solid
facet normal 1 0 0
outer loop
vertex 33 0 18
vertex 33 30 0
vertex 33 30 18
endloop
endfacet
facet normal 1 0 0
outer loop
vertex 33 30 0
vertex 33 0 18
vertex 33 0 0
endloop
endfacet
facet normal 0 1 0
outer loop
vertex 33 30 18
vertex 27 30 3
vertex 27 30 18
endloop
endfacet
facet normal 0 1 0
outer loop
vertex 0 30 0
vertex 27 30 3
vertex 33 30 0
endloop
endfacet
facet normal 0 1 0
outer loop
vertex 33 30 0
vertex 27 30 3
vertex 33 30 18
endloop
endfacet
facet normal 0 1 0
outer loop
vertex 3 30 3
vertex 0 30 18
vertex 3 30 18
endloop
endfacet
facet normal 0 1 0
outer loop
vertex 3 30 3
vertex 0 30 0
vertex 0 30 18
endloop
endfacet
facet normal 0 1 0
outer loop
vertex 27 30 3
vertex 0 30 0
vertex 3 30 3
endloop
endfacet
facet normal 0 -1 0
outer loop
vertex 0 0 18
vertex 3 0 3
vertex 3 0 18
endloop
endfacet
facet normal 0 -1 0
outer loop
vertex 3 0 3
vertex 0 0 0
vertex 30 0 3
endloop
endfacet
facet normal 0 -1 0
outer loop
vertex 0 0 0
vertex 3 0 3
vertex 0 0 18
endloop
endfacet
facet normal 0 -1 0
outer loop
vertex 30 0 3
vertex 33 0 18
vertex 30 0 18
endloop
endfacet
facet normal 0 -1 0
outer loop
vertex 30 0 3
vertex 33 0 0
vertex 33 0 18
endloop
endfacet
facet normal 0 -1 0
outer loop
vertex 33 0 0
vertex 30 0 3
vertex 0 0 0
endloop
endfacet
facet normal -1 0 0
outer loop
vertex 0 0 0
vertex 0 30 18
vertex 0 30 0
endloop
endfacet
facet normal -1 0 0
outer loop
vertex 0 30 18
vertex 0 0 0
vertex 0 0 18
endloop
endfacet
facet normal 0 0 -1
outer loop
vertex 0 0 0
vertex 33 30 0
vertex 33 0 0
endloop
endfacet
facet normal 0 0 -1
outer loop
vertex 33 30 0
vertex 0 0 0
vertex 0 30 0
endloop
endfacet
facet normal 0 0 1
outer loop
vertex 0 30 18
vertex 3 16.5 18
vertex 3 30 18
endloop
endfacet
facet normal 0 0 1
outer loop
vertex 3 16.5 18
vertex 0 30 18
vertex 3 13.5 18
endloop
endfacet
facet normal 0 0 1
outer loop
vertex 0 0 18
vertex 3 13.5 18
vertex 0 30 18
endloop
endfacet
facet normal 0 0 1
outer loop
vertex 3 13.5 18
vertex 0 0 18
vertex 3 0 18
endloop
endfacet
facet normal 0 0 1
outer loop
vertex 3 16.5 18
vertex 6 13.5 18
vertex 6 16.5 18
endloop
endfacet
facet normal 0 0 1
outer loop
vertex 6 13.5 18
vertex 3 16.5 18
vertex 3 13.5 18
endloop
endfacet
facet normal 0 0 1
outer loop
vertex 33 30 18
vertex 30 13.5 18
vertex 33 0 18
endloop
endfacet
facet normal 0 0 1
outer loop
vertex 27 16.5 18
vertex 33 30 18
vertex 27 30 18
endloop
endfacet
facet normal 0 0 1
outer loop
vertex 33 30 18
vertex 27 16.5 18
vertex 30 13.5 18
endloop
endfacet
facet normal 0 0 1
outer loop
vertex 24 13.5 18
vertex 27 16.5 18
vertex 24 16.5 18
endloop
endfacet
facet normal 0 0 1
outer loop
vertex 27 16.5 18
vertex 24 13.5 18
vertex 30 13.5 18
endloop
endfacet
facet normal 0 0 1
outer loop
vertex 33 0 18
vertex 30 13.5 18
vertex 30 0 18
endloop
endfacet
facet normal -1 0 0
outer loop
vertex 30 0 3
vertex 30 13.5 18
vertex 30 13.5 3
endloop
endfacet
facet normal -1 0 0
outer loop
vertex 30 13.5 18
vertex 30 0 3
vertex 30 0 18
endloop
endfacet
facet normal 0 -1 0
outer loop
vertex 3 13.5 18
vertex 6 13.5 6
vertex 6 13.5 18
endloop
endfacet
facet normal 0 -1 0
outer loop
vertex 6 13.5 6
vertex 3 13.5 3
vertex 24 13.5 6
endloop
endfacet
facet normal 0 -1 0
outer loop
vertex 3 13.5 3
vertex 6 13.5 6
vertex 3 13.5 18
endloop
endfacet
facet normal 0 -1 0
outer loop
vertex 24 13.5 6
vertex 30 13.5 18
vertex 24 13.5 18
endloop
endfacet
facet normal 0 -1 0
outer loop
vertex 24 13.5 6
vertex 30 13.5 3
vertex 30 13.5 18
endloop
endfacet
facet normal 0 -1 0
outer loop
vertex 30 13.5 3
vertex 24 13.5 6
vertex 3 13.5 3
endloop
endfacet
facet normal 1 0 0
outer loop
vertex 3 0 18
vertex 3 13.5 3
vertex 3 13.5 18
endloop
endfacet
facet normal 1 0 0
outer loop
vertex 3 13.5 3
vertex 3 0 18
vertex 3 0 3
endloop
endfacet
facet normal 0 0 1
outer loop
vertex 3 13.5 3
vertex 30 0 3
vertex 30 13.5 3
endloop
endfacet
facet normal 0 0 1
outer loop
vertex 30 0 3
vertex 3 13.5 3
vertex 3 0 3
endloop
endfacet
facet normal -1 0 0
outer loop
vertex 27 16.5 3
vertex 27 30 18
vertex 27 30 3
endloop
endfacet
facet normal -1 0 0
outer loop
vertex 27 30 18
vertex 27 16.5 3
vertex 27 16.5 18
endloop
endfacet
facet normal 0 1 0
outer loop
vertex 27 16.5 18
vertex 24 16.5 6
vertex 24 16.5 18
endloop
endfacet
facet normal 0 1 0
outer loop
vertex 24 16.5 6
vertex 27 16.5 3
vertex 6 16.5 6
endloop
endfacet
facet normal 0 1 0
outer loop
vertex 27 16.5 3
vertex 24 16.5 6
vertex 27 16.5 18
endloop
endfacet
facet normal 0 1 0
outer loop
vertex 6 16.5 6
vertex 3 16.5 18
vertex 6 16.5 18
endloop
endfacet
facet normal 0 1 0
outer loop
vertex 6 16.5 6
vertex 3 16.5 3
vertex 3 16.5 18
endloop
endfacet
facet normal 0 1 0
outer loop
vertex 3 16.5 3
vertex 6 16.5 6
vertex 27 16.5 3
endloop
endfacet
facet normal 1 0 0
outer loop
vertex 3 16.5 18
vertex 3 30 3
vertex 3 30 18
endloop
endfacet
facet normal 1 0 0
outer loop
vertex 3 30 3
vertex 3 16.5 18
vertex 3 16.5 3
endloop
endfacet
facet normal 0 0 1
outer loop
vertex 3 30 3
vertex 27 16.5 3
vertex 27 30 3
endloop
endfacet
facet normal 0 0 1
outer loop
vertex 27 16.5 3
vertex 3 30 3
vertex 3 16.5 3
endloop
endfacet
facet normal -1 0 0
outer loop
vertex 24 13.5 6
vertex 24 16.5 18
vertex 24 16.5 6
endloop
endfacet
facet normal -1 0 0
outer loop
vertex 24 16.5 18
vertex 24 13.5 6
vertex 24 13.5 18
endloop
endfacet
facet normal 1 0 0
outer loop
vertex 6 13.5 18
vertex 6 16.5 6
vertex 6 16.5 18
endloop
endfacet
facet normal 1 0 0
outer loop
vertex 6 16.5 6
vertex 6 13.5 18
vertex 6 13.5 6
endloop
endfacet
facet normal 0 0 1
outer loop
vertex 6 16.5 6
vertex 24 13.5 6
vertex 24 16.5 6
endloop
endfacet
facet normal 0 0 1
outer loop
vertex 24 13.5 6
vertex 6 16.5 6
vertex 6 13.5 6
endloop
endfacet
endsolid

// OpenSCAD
// Holder for FrSky S8R and S6R receivers.
// Use this while you're calibrating them so you don't bend your antenna.

W=3;
s8XX=27;
s6XX=24;
HH=30;
YY=15;
module main() {
    difference() {
        // body - S8R hole - S6R hole - antenna notch
        cube([s8XX+W*2,YY+W,HH]);
        translate([W,0,-(HH/2+W/2)]) cube([s8XX,YY,HH]);
        translate([W,0,(HH/2+W/2)]) cube([s6XX,YY,HH]);
        translate([W*2,-3,0]) cube([s6XX-W*2,YY,HH]);
    }
}


translate([0,0,YY+W]) rotate([-90,0,0]) main();
